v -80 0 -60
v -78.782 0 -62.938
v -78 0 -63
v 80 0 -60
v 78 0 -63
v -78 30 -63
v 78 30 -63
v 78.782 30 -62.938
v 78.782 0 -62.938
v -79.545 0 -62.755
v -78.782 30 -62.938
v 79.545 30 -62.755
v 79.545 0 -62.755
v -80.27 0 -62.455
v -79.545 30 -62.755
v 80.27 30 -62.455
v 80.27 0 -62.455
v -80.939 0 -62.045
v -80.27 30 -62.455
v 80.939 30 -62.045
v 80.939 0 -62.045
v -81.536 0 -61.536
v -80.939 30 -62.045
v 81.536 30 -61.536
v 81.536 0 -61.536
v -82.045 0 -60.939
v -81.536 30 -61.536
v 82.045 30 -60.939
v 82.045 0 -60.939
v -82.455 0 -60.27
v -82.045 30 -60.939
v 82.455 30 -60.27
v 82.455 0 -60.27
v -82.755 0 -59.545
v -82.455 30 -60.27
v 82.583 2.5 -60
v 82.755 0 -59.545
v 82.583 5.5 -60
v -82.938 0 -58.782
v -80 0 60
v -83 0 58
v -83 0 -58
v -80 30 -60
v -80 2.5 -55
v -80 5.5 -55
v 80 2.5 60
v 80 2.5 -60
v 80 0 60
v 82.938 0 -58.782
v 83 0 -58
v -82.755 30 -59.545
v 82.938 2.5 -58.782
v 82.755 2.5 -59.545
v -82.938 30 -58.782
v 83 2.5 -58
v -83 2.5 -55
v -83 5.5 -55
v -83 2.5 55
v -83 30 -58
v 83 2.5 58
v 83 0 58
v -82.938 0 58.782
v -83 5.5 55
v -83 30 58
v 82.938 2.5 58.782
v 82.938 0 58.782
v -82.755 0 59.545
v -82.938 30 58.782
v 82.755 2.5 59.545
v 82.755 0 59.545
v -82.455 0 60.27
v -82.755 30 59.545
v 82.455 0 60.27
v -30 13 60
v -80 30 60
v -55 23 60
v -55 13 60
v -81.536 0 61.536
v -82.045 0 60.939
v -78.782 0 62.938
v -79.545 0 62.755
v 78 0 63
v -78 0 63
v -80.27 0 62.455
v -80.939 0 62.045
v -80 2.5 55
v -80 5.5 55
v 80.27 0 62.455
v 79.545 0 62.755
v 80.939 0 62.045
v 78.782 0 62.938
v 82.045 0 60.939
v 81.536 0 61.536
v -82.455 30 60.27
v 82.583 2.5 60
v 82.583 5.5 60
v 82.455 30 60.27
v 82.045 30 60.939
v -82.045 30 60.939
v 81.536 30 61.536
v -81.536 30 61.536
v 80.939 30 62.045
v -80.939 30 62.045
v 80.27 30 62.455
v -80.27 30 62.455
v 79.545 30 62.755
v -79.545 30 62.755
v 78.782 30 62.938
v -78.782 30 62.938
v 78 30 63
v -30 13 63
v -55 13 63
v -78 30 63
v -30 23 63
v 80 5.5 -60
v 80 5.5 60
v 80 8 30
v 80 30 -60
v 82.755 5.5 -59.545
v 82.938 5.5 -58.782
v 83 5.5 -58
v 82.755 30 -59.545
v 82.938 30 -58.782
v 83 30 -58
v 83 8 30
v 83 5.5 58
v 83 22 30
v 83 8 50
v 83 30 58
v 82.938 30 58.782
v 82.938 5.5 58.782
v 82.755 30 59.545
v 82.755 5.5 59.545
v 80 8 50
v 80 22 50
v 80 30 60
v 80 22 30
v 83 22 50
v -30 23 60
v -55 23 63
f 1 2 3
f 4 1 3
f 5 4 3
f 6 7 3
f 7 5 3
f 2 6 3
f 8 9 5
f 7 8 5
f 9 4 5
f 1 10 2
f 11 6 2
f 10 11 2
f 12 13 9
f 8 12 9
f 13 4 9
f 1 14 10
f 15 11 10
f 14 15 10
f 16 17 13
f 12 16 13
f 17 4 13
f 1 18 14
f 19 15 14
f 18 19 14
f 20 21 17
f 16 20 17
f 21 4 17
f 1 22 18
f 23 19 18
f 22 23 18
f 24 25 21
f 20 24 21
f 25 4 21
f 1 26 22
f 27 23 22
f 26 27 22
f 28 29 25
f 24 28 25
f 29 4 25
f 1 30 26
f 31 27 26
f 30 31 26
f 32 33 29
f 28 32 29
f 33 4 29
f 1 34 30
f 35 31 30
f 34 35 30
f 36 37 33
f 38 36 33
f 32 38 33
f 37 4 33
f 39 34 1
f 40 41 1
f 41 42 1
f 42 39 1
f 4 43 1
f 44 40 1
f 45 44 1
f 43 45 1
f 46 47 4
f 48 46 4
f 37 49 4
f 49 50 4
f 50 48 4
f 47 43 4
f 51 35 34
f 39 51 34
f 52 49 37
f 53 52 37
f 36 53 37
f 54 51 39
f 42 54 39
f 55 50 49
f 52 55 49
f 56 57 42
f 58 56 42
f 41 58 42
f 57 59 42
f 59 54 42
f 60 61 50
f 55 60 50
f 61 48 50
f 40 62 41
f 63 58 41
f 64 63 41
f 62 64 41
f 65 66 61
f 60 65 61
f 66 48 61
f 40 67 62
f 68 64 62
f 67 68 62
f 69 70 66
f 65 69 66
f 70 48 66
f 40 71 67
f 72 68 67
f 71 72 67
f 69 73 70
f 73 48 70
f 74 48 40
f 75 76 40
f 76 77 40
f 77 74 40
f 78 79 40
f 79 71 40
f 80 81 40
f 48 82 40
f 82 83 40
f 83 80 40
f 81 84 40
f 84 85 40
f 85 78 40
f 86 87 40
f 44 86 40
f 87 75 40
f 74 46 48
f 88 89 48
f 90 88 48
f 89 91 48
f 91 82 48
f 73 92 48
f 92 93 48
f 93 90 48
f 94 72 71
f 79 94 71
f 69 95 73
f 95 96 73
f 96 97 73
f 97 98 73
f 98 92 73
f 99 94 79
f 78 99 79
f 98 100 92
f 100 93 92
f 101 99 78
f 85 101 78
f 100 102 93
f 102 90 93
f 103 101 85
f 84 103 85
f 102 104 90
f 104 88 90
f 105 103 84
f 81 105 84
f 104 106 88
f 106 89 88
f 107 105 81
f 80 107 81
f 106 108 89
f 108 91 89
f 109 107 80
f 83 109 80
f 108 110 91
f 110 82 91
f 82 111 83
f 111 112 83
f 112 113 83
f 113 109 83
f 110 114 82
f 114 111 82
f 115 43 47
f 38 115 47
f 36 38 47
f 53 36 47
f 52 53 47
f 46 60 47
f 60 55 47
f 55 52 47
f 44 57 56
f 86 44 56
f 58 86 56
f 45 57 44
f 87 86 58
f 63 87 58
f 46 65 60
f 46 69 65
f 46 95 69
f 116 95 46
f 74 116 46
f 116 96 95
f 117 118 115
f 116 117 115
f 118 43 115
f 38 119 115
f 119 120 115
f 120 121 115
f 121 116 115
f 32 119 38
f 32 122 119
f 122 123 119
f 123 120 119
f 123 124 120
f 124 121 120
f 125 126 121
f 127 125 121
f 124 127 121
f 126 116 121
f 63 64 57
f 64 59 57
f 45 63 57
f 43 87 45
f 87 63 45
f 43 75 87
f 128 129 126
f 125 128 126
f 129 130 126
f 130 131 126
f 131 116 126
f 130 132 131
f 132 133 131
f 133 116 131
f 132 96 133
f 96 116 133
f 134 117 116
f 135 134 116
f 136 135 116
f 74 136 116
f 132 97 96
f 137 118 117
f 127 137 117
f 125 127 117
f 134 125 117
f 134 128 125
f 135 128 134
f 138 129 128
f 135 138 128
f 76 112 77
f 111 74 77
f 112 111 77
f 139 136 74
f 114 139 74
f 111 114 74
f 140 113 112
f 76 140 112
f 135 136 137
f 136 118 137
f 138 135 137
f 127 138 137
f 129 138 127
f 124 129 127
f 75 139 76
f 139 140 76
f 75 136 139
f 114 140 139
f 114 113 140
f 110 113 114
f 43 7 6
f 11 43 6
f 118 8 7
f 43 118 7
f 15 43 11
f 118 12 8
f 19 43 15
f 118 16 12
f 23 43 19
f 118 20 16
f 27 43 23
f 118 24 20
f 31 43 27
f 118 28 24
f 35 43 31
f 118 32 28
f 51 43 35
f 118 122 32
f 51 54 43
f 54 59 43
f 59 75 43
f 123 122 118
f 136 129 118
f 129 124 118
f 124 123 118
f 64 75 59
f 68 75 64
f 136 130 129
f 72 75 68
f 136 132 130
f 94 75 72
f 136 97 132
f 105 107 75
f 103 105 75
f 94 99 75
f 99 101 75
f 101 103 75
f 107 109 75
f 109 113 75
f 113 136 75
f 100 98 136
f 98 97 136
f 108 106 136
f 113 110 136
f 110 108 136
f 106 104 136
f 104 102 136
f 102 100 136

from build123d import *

# Parameters (mm, degrees)
SKETCH_1_W          = 166
SKETCH_1_H          = 126
SKETCH_1_W_2        = 160
SKETCH_1_H_2        = 120
EXTRUDE_1_DEPTH     = 30
FILLET_1_R          = 5
SKETCH_2_W          = 25
SKETCH_2_H          = 10
CUT_EXTRUDE_1_DEPTH = 100
SKETCH_3_W          = 20
SKETCH_3_H          = 14
CUT_EXTRUDE_2_DEPTH = 100
SKETCH_4_W          = 120
SKETCH_4_H          = 3
CUT_EXTRUDE_3_DEPTH = 100
SKETCH_5_W          = 110
SKETCH_5_H          = 3
CUT_EXTRUDE_4_DEPTH = 100


with BuildPart() as part:
    # 草图1 → 凸台-拉伸1 (new body)
    with BuildSketch(Plane(origin=(0, 0, 0), x_dir=(1, 0, 0), z_dir=(0, 1, 0))):
        Rectangle(SKETCH_1_W, SKETCH_1_H)
        Rectangle(SKETCH_1_W_2, SKETCH_1_H_2, mode=Mode.SUBTRACT)
    extrude(amount=EXTRUDE_1_DEPTH)

    # 圆角1
    fillet_1_edges = [part.edges().sort_by_distance(p)[0] for p in [
        (83, 15, 63),
        (-83, 15, 63),
        (-83, 15, -63),
        (83, 15, -63),
    ]]
    fillet(fillet_1_edges, radius=FILLET_1_R)

    # 草图2 → 切除-拉伸1 (cut)
    with BuildSketch(Plane.XY):
        with Locations((-42.5, 18)):
            Rectangle(SKETCH_2_W, SKETCH_2_H)
    extrude(amount=CUT_EXTRUDE_1_DEPTH, mode=Mode.SUBTRACT)

    # 草图3 → 切除-拉伸2 (cut)
    with BuildSketch(Plane(origin=(0, 0, 0), x_dir=(0, 0, -1), z_dir=(1, 0, 0))):
        with Locations((-40, 15)):
            Rectangle(SKETCH_3_W, SKETCH_3_H)
    extrude(amount=CUT_EXTRUDE_2_DEPTH, mode=Mode.SUBTRACT)

    # 草图4 → 切除-拉伸3 (cut)
    with BuildSketch(Plane(origin=(0, 0, 0), x_dir=(0, 0, -1), z_dir=(1, 0, 0))):
        with Locations((0, 4)):
            Rectangle(SKETCH_4_W, SKETCH_4_H)
    extrude(amount=CUT_EXTRUDE_3_DEPTH, mode=Mode.SUBTRACT)

    # 草图5 → 切除-拉伸4 (cut)
    with BuildSketch(Plane(origin=(0, 0, 0), x_dir=(0, 0, -1), z_dir=(1, 0, 0))):
        with Locations((0, 4)):
            Rectangle(SKETCH_5_W, SKETCH_5_H)
    extrude(amount=-CUT_EXTRUDE_4_DEPTH, mode=Mode.SUBTRACT)


solid = part.part
